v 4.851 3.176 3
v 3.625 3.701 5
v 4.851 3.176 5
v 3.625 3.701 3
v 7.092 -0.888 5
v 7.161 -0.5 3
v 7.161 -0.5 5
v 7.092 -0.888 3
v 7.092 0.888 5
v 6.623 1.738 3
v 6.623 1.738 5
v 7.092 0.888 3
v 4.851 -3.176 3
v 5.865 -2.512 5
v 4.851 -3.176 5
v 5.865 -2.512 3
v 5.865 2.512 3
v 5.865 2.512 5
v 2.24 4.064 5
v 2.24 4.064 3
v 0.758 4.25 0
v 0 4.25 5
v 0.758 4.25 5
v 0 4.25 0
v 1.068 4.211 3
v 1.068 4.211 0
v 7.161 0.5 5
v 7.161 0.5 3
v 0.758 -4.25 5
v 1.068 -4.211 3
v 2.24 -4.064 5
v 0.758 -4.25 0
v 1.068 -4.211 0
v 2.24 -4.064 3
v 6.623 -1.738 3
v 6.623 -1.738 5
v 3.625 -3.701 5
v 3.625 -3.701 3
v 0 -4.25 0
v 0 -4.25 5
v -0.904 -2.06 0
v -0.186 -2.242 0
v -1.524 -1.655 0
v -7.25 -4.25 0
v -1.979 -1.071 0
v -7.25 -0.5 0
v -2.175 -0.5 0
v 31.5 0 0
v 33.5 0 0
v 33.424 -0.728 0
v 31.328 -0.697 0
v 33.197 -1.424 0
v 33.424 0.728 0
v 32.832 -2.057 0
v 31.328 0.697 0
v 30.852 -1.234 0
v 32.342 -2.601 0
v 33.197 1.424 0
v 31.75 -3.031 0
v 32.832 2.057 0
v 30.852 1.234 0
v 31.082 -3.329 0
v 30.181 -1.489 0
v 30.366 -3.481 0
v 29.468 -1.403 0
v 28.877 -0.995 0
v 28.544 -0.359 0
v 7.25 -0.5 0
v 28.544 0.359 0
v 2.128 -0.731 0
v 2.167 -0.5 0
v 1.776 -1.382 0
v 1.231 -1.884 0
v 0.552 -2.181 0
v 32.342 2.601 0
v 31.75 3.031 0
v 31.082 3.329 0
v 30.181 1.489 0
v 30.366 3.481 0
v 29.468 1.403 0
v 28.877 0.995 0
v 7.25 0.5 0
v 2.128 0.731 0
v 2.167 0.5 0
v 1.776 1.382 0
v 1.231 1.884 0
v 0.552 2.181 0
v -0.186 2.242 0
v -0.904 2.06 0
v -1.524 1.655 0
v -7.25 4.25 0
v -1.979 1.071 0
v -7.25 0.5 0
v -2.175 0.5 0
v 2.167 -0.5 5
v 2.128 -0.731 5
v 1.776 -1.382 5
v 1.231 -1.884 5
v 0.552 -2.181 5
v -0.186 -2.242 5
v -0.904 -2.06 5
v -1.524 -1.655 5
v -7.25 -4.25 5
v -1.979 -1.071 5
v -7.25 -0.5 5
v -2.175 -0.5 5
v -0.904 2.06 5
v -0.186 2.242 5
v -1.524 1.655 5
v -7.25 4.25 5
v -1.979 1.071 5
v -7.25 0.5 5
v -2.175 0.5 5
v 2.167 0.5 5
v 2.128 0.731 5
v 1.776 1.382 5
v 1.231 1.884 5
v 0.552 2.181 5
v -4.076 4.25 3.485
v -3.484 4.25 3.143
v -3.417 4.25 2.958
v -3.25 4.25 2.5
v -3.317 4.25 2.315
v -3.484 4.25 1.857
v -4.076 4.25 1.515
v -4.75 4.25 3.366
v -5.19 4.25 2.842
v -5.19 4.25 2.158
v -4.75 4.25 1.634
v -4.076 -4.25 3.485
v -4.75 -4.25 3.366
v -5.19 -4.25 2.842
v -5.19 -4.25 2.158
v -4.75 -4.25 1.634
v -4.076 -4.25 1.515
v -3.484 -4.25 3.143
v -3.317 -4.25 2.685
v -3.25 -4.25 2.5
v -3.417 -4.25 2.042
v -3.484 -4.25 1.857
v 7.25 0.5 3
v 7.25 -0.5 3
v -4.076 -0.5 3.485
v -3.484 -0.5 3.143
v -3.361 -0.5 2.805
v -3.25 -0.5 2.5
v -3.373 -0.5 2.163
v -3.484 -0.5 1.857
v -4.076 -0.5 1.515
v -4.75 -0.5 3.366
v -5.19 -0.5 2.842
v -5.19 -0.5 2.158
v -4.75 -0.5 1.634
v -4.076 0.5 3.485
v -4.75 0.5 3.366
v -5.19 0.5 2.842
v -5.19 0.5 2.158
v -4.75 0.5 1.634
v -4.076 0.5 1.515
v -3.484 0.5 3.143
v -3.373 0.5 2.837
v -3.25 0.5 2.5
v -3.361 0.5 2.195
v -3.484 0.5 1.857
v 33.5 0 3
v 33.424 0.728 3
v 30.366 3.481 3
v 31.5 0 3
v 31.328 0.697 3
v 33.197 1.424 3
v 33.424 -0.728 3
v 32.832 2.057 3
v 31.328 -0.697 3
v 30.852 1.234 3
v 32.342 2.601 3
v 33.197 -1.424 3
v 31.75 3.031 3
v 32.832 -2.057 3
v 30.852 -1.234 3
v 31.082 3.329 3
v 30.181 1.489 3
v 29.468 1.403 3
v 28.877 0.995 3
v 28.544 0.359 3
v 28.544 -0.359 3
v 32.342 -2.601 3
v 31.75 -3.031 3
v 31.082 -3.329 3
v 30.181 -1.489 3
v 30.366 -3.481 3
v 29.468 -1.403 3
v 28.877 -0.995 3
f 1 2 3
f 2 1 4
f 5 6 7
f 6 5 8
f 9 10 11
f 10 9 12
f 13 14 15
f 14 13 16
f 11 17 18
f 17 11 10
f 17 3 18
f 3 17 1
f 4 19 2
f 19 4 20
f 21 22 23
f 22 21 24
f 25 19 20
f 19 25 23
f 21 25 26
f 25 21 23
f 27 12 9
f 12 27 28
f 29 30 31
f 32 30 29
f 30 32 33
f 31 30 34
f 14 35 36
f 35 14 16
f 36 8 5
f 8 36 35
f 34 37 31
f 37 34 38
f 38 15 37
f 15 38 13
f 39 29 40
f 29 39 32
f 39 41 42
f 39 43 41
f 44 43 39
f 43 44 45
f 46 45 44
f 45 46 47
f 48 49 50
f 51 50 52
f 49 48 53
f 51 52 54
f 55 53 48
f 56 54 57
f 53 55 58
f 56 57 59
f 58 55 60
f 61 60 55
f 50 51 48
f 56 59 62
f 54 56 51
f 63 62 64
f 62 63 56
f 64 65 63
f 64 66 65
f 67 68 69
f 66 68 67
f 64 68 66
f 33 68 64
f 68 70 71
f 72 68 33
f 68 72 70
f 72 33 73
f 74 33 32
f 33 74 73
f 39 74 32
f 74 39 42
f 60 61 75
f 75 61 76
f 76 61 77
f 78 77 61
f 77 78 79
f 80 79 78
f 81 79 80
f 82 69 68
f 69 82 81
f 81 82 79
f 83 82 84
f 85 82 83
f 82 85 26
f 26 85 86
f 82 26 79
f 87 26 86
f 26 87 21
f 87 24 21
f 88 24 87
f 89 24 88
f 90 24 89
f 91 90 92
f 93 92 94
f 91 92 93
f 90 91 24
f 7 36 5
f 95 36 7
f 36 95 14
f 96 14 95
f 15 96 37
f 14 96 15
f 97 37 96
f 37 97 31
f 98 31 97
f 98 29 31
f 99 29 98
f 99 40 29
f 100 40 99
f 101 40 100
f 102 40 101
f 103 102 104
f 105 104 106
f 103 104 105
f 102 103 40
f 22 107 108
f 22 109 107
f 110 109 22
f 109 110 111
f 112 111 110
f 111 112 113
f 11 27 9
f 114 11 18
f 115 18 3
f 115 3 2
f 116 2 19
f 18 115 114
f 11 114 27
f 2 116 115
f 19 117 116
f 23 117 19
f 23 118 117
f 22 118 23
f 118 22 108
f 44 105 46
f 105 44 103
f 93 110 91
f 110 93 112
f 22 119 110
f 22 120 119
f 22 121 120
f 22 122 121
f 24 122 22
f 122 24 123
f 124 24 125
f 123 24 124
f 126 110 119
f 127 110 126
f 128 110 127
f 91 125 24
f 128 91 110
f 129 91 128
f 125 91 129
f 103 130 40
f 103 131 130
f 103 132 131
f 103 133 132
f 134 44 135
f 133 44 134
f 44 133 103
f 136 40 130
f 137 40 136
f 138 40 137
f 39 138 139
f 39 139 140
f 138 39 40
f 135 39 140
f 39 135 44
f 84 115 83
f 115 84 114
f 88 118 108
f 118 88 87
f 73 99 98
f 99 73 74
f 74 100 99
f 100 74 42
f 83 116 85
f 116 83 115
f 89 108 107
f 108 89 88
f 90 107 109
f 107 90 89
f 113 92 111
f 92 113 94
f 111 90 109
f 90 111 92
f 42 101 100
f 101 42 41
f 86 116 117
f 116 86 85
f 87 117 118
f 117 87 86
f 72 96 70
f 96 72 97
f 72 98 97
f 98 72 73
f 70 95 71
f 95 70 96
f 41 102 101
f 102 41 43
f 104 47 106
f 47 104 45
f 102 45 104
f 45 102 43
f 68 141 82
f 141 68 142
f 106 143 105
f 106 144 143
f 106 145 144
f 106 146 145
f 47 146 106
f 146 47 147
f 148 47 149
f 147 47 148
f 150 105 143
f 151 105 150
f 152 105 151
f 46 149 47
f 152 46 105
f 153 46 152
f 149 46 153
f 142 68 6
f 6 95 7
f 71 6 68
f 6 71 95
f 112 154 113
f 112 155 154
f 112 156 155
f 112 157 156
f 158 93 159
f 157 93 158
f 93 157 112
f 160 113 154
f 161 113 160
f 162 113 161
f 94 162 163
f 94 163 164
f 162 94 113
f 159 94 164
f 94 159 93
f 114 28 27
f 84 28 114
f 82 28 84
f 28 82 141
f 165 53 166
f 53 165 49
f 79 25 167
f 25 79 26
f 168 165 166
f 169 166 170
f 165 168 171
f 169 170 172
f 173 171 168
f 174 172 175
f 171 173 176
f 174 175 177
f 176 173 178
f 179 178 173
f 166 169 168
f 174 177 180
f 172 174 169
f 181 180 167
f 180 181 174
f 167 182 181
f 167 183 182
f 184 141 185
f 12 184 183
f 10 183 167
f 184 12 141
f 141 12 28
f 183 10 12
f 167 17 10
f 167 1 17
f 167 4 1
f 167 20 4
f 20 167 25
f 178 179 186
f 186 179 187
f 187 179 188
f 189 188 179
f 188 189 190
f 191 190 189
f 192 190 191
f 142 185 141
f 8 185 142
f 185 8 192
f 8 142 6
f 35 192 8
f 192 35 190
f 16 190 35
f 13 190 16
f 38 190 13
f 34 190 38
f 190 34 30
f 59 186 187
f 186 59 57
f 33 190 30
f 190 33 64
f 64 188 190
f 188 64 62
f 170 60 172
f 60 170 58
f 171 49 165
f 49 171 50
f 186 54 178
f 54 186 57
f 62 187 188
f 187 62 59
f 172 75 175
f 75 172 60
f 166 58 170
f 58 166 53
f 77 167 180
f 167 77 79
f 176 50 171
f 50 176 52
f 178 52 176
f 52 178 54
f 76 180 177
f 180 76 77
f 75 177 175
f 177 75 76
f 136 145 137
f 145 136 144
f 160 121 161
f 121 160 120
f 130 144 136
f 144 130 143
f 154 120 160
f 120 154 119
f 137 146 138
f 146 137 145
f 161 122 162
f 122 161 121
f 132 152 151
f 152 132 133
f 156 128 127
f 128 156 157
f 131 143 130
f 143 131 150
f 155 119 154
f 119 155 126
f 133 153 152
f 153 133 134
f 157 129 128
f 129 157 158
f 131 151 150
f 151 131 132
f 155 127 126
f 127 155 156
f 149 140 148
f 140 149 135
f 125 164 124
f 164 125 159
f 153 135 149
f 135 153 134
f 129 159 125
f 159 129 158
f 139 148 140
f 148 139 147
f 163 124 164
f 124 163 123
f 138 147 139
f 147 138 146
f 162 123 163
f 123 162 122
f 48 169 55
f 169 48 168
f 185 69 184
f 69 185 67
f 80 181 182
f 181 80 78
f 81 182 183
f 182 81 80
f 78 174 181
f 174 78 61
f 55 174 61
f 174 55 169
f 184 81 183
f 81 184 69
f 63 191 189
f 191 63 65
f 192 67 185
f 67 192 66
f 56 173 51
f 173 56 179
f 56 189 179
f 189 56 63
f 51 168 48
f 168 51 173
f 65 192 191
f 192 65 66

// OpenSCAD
$fs=.75;

difference(){
	union() {
		union() {
			union() {
				union() {
					resize(newsize = [14.5000000000, 8.5000000000, 0]) {
						cylinder(d = 7.2500000000, h = 5);
					}
					translate(v = [-3.6250000000, 0.0000000000, 2.5000000000]) {
						translate(v = [-3.6250000000, -4.2500000000, -2.5000000000]) {
							cube(size = [7.2500000000, 8.5000000000, 5]);
						}
					}
				}
			}
		}
		hull() {
			cylinder(h = 3, r = 4.2500000000);
			translate(v = [30, 0, 0]) {
				union() {
					cylinder(h = 3, r = 3.5000000000);
				}
			}
		}
		translate(v = [30, 0, 0]) {
			union() {
				cylinder(h = 3, r = 3.5000000000);
			}
		}
	}
	/* Holes Below*/
	union(){
		union(){
			union(){
				cylinder(d = 4.5000000000, h = 5);
			}
			translate(v = [0, 0, 0]) {
				translate(v = [0.0000000000, 0, 2.5000000000]) {
					translate(v = [-7.2500000000, -0.5000000000, -2.5000000000]) {
						cube(size = [14.5000000000, 1, 5]);
					}
				}
			}
		}
		translate(v = [-4.2500000000, 0, 2.5000000000]) {
			rotate(a = [90, 0, 0]) {
				translate(v = [0, 0, -10.0000000000]) {
					cylinder(d = 2, h = 20);
				}
			}
		}
		hull(){
			translate(v = [30, 0, 0]){
				union(){
					cylinder(d = 3, h = 3);
				}
			}
		}
		translate(v = [30, 0, 0]){
			union(){
				cylinder(d = 3, h = 3);
			}
		}
	} /* End Holes */ 
}
/***********************************************
*********      SolidPython code:      **********
************************************************
 
from solid import *
from solid import extensions
from math import *

class Object:
    pass

servo = Object()
servo.shaft = Object()
servo.shaft.d = 4.5
servo.shaft.r = servo.shaft.d/2.
servo.shaft.h = 5
servoShaft = cylinder(d=servo.shaft.d,h=servo.shaft.h)

grip = Object()
grip.rx = servo.shaft.r+5
grip.ry = servo.shaft.r+2

hornGrip = ( cylinder(d=grip.rx, h=servo.shaft.h).resize([grip.rx*2,grip.ry*2,0])
	         + cube([grip.rx,2*grip.ry,servo.shaft.h]).align('x+','z-')
	         - servoShaft.set_hole()
             - cube([2*grip.rx, 1, servo.shaft.h]).align('z-').move(x=0).set_hole()
             - cylinder(d=2,h=20).center().rot(x=90).move(x=-(servo.shaft.r+grip.rx)/2.+.5,z=servo.shaft.h/2.).set_hole()
           )

horn = Object()
horn.height = 3
horn.lenght = 30
horn.end = Object()
horn.end.hole = 3
horn.end.r = horn.end.hole/2.+2
hornEnd = ( cylinder(r=horn.end.r, h = horn.height)
	       - cylinder(d=horn.end.hole, h = horn.height).set_hole()).move(x=horn.lenght)

hornBody = hull(cylinder(r=grip.ry, h=horn.height), hornEnd)

scene = hornGrip + hornBody + hornEnd


scad_render_to_file(scene, 'preview.scad', '$fs=.75;')
 
 
************************************************/
